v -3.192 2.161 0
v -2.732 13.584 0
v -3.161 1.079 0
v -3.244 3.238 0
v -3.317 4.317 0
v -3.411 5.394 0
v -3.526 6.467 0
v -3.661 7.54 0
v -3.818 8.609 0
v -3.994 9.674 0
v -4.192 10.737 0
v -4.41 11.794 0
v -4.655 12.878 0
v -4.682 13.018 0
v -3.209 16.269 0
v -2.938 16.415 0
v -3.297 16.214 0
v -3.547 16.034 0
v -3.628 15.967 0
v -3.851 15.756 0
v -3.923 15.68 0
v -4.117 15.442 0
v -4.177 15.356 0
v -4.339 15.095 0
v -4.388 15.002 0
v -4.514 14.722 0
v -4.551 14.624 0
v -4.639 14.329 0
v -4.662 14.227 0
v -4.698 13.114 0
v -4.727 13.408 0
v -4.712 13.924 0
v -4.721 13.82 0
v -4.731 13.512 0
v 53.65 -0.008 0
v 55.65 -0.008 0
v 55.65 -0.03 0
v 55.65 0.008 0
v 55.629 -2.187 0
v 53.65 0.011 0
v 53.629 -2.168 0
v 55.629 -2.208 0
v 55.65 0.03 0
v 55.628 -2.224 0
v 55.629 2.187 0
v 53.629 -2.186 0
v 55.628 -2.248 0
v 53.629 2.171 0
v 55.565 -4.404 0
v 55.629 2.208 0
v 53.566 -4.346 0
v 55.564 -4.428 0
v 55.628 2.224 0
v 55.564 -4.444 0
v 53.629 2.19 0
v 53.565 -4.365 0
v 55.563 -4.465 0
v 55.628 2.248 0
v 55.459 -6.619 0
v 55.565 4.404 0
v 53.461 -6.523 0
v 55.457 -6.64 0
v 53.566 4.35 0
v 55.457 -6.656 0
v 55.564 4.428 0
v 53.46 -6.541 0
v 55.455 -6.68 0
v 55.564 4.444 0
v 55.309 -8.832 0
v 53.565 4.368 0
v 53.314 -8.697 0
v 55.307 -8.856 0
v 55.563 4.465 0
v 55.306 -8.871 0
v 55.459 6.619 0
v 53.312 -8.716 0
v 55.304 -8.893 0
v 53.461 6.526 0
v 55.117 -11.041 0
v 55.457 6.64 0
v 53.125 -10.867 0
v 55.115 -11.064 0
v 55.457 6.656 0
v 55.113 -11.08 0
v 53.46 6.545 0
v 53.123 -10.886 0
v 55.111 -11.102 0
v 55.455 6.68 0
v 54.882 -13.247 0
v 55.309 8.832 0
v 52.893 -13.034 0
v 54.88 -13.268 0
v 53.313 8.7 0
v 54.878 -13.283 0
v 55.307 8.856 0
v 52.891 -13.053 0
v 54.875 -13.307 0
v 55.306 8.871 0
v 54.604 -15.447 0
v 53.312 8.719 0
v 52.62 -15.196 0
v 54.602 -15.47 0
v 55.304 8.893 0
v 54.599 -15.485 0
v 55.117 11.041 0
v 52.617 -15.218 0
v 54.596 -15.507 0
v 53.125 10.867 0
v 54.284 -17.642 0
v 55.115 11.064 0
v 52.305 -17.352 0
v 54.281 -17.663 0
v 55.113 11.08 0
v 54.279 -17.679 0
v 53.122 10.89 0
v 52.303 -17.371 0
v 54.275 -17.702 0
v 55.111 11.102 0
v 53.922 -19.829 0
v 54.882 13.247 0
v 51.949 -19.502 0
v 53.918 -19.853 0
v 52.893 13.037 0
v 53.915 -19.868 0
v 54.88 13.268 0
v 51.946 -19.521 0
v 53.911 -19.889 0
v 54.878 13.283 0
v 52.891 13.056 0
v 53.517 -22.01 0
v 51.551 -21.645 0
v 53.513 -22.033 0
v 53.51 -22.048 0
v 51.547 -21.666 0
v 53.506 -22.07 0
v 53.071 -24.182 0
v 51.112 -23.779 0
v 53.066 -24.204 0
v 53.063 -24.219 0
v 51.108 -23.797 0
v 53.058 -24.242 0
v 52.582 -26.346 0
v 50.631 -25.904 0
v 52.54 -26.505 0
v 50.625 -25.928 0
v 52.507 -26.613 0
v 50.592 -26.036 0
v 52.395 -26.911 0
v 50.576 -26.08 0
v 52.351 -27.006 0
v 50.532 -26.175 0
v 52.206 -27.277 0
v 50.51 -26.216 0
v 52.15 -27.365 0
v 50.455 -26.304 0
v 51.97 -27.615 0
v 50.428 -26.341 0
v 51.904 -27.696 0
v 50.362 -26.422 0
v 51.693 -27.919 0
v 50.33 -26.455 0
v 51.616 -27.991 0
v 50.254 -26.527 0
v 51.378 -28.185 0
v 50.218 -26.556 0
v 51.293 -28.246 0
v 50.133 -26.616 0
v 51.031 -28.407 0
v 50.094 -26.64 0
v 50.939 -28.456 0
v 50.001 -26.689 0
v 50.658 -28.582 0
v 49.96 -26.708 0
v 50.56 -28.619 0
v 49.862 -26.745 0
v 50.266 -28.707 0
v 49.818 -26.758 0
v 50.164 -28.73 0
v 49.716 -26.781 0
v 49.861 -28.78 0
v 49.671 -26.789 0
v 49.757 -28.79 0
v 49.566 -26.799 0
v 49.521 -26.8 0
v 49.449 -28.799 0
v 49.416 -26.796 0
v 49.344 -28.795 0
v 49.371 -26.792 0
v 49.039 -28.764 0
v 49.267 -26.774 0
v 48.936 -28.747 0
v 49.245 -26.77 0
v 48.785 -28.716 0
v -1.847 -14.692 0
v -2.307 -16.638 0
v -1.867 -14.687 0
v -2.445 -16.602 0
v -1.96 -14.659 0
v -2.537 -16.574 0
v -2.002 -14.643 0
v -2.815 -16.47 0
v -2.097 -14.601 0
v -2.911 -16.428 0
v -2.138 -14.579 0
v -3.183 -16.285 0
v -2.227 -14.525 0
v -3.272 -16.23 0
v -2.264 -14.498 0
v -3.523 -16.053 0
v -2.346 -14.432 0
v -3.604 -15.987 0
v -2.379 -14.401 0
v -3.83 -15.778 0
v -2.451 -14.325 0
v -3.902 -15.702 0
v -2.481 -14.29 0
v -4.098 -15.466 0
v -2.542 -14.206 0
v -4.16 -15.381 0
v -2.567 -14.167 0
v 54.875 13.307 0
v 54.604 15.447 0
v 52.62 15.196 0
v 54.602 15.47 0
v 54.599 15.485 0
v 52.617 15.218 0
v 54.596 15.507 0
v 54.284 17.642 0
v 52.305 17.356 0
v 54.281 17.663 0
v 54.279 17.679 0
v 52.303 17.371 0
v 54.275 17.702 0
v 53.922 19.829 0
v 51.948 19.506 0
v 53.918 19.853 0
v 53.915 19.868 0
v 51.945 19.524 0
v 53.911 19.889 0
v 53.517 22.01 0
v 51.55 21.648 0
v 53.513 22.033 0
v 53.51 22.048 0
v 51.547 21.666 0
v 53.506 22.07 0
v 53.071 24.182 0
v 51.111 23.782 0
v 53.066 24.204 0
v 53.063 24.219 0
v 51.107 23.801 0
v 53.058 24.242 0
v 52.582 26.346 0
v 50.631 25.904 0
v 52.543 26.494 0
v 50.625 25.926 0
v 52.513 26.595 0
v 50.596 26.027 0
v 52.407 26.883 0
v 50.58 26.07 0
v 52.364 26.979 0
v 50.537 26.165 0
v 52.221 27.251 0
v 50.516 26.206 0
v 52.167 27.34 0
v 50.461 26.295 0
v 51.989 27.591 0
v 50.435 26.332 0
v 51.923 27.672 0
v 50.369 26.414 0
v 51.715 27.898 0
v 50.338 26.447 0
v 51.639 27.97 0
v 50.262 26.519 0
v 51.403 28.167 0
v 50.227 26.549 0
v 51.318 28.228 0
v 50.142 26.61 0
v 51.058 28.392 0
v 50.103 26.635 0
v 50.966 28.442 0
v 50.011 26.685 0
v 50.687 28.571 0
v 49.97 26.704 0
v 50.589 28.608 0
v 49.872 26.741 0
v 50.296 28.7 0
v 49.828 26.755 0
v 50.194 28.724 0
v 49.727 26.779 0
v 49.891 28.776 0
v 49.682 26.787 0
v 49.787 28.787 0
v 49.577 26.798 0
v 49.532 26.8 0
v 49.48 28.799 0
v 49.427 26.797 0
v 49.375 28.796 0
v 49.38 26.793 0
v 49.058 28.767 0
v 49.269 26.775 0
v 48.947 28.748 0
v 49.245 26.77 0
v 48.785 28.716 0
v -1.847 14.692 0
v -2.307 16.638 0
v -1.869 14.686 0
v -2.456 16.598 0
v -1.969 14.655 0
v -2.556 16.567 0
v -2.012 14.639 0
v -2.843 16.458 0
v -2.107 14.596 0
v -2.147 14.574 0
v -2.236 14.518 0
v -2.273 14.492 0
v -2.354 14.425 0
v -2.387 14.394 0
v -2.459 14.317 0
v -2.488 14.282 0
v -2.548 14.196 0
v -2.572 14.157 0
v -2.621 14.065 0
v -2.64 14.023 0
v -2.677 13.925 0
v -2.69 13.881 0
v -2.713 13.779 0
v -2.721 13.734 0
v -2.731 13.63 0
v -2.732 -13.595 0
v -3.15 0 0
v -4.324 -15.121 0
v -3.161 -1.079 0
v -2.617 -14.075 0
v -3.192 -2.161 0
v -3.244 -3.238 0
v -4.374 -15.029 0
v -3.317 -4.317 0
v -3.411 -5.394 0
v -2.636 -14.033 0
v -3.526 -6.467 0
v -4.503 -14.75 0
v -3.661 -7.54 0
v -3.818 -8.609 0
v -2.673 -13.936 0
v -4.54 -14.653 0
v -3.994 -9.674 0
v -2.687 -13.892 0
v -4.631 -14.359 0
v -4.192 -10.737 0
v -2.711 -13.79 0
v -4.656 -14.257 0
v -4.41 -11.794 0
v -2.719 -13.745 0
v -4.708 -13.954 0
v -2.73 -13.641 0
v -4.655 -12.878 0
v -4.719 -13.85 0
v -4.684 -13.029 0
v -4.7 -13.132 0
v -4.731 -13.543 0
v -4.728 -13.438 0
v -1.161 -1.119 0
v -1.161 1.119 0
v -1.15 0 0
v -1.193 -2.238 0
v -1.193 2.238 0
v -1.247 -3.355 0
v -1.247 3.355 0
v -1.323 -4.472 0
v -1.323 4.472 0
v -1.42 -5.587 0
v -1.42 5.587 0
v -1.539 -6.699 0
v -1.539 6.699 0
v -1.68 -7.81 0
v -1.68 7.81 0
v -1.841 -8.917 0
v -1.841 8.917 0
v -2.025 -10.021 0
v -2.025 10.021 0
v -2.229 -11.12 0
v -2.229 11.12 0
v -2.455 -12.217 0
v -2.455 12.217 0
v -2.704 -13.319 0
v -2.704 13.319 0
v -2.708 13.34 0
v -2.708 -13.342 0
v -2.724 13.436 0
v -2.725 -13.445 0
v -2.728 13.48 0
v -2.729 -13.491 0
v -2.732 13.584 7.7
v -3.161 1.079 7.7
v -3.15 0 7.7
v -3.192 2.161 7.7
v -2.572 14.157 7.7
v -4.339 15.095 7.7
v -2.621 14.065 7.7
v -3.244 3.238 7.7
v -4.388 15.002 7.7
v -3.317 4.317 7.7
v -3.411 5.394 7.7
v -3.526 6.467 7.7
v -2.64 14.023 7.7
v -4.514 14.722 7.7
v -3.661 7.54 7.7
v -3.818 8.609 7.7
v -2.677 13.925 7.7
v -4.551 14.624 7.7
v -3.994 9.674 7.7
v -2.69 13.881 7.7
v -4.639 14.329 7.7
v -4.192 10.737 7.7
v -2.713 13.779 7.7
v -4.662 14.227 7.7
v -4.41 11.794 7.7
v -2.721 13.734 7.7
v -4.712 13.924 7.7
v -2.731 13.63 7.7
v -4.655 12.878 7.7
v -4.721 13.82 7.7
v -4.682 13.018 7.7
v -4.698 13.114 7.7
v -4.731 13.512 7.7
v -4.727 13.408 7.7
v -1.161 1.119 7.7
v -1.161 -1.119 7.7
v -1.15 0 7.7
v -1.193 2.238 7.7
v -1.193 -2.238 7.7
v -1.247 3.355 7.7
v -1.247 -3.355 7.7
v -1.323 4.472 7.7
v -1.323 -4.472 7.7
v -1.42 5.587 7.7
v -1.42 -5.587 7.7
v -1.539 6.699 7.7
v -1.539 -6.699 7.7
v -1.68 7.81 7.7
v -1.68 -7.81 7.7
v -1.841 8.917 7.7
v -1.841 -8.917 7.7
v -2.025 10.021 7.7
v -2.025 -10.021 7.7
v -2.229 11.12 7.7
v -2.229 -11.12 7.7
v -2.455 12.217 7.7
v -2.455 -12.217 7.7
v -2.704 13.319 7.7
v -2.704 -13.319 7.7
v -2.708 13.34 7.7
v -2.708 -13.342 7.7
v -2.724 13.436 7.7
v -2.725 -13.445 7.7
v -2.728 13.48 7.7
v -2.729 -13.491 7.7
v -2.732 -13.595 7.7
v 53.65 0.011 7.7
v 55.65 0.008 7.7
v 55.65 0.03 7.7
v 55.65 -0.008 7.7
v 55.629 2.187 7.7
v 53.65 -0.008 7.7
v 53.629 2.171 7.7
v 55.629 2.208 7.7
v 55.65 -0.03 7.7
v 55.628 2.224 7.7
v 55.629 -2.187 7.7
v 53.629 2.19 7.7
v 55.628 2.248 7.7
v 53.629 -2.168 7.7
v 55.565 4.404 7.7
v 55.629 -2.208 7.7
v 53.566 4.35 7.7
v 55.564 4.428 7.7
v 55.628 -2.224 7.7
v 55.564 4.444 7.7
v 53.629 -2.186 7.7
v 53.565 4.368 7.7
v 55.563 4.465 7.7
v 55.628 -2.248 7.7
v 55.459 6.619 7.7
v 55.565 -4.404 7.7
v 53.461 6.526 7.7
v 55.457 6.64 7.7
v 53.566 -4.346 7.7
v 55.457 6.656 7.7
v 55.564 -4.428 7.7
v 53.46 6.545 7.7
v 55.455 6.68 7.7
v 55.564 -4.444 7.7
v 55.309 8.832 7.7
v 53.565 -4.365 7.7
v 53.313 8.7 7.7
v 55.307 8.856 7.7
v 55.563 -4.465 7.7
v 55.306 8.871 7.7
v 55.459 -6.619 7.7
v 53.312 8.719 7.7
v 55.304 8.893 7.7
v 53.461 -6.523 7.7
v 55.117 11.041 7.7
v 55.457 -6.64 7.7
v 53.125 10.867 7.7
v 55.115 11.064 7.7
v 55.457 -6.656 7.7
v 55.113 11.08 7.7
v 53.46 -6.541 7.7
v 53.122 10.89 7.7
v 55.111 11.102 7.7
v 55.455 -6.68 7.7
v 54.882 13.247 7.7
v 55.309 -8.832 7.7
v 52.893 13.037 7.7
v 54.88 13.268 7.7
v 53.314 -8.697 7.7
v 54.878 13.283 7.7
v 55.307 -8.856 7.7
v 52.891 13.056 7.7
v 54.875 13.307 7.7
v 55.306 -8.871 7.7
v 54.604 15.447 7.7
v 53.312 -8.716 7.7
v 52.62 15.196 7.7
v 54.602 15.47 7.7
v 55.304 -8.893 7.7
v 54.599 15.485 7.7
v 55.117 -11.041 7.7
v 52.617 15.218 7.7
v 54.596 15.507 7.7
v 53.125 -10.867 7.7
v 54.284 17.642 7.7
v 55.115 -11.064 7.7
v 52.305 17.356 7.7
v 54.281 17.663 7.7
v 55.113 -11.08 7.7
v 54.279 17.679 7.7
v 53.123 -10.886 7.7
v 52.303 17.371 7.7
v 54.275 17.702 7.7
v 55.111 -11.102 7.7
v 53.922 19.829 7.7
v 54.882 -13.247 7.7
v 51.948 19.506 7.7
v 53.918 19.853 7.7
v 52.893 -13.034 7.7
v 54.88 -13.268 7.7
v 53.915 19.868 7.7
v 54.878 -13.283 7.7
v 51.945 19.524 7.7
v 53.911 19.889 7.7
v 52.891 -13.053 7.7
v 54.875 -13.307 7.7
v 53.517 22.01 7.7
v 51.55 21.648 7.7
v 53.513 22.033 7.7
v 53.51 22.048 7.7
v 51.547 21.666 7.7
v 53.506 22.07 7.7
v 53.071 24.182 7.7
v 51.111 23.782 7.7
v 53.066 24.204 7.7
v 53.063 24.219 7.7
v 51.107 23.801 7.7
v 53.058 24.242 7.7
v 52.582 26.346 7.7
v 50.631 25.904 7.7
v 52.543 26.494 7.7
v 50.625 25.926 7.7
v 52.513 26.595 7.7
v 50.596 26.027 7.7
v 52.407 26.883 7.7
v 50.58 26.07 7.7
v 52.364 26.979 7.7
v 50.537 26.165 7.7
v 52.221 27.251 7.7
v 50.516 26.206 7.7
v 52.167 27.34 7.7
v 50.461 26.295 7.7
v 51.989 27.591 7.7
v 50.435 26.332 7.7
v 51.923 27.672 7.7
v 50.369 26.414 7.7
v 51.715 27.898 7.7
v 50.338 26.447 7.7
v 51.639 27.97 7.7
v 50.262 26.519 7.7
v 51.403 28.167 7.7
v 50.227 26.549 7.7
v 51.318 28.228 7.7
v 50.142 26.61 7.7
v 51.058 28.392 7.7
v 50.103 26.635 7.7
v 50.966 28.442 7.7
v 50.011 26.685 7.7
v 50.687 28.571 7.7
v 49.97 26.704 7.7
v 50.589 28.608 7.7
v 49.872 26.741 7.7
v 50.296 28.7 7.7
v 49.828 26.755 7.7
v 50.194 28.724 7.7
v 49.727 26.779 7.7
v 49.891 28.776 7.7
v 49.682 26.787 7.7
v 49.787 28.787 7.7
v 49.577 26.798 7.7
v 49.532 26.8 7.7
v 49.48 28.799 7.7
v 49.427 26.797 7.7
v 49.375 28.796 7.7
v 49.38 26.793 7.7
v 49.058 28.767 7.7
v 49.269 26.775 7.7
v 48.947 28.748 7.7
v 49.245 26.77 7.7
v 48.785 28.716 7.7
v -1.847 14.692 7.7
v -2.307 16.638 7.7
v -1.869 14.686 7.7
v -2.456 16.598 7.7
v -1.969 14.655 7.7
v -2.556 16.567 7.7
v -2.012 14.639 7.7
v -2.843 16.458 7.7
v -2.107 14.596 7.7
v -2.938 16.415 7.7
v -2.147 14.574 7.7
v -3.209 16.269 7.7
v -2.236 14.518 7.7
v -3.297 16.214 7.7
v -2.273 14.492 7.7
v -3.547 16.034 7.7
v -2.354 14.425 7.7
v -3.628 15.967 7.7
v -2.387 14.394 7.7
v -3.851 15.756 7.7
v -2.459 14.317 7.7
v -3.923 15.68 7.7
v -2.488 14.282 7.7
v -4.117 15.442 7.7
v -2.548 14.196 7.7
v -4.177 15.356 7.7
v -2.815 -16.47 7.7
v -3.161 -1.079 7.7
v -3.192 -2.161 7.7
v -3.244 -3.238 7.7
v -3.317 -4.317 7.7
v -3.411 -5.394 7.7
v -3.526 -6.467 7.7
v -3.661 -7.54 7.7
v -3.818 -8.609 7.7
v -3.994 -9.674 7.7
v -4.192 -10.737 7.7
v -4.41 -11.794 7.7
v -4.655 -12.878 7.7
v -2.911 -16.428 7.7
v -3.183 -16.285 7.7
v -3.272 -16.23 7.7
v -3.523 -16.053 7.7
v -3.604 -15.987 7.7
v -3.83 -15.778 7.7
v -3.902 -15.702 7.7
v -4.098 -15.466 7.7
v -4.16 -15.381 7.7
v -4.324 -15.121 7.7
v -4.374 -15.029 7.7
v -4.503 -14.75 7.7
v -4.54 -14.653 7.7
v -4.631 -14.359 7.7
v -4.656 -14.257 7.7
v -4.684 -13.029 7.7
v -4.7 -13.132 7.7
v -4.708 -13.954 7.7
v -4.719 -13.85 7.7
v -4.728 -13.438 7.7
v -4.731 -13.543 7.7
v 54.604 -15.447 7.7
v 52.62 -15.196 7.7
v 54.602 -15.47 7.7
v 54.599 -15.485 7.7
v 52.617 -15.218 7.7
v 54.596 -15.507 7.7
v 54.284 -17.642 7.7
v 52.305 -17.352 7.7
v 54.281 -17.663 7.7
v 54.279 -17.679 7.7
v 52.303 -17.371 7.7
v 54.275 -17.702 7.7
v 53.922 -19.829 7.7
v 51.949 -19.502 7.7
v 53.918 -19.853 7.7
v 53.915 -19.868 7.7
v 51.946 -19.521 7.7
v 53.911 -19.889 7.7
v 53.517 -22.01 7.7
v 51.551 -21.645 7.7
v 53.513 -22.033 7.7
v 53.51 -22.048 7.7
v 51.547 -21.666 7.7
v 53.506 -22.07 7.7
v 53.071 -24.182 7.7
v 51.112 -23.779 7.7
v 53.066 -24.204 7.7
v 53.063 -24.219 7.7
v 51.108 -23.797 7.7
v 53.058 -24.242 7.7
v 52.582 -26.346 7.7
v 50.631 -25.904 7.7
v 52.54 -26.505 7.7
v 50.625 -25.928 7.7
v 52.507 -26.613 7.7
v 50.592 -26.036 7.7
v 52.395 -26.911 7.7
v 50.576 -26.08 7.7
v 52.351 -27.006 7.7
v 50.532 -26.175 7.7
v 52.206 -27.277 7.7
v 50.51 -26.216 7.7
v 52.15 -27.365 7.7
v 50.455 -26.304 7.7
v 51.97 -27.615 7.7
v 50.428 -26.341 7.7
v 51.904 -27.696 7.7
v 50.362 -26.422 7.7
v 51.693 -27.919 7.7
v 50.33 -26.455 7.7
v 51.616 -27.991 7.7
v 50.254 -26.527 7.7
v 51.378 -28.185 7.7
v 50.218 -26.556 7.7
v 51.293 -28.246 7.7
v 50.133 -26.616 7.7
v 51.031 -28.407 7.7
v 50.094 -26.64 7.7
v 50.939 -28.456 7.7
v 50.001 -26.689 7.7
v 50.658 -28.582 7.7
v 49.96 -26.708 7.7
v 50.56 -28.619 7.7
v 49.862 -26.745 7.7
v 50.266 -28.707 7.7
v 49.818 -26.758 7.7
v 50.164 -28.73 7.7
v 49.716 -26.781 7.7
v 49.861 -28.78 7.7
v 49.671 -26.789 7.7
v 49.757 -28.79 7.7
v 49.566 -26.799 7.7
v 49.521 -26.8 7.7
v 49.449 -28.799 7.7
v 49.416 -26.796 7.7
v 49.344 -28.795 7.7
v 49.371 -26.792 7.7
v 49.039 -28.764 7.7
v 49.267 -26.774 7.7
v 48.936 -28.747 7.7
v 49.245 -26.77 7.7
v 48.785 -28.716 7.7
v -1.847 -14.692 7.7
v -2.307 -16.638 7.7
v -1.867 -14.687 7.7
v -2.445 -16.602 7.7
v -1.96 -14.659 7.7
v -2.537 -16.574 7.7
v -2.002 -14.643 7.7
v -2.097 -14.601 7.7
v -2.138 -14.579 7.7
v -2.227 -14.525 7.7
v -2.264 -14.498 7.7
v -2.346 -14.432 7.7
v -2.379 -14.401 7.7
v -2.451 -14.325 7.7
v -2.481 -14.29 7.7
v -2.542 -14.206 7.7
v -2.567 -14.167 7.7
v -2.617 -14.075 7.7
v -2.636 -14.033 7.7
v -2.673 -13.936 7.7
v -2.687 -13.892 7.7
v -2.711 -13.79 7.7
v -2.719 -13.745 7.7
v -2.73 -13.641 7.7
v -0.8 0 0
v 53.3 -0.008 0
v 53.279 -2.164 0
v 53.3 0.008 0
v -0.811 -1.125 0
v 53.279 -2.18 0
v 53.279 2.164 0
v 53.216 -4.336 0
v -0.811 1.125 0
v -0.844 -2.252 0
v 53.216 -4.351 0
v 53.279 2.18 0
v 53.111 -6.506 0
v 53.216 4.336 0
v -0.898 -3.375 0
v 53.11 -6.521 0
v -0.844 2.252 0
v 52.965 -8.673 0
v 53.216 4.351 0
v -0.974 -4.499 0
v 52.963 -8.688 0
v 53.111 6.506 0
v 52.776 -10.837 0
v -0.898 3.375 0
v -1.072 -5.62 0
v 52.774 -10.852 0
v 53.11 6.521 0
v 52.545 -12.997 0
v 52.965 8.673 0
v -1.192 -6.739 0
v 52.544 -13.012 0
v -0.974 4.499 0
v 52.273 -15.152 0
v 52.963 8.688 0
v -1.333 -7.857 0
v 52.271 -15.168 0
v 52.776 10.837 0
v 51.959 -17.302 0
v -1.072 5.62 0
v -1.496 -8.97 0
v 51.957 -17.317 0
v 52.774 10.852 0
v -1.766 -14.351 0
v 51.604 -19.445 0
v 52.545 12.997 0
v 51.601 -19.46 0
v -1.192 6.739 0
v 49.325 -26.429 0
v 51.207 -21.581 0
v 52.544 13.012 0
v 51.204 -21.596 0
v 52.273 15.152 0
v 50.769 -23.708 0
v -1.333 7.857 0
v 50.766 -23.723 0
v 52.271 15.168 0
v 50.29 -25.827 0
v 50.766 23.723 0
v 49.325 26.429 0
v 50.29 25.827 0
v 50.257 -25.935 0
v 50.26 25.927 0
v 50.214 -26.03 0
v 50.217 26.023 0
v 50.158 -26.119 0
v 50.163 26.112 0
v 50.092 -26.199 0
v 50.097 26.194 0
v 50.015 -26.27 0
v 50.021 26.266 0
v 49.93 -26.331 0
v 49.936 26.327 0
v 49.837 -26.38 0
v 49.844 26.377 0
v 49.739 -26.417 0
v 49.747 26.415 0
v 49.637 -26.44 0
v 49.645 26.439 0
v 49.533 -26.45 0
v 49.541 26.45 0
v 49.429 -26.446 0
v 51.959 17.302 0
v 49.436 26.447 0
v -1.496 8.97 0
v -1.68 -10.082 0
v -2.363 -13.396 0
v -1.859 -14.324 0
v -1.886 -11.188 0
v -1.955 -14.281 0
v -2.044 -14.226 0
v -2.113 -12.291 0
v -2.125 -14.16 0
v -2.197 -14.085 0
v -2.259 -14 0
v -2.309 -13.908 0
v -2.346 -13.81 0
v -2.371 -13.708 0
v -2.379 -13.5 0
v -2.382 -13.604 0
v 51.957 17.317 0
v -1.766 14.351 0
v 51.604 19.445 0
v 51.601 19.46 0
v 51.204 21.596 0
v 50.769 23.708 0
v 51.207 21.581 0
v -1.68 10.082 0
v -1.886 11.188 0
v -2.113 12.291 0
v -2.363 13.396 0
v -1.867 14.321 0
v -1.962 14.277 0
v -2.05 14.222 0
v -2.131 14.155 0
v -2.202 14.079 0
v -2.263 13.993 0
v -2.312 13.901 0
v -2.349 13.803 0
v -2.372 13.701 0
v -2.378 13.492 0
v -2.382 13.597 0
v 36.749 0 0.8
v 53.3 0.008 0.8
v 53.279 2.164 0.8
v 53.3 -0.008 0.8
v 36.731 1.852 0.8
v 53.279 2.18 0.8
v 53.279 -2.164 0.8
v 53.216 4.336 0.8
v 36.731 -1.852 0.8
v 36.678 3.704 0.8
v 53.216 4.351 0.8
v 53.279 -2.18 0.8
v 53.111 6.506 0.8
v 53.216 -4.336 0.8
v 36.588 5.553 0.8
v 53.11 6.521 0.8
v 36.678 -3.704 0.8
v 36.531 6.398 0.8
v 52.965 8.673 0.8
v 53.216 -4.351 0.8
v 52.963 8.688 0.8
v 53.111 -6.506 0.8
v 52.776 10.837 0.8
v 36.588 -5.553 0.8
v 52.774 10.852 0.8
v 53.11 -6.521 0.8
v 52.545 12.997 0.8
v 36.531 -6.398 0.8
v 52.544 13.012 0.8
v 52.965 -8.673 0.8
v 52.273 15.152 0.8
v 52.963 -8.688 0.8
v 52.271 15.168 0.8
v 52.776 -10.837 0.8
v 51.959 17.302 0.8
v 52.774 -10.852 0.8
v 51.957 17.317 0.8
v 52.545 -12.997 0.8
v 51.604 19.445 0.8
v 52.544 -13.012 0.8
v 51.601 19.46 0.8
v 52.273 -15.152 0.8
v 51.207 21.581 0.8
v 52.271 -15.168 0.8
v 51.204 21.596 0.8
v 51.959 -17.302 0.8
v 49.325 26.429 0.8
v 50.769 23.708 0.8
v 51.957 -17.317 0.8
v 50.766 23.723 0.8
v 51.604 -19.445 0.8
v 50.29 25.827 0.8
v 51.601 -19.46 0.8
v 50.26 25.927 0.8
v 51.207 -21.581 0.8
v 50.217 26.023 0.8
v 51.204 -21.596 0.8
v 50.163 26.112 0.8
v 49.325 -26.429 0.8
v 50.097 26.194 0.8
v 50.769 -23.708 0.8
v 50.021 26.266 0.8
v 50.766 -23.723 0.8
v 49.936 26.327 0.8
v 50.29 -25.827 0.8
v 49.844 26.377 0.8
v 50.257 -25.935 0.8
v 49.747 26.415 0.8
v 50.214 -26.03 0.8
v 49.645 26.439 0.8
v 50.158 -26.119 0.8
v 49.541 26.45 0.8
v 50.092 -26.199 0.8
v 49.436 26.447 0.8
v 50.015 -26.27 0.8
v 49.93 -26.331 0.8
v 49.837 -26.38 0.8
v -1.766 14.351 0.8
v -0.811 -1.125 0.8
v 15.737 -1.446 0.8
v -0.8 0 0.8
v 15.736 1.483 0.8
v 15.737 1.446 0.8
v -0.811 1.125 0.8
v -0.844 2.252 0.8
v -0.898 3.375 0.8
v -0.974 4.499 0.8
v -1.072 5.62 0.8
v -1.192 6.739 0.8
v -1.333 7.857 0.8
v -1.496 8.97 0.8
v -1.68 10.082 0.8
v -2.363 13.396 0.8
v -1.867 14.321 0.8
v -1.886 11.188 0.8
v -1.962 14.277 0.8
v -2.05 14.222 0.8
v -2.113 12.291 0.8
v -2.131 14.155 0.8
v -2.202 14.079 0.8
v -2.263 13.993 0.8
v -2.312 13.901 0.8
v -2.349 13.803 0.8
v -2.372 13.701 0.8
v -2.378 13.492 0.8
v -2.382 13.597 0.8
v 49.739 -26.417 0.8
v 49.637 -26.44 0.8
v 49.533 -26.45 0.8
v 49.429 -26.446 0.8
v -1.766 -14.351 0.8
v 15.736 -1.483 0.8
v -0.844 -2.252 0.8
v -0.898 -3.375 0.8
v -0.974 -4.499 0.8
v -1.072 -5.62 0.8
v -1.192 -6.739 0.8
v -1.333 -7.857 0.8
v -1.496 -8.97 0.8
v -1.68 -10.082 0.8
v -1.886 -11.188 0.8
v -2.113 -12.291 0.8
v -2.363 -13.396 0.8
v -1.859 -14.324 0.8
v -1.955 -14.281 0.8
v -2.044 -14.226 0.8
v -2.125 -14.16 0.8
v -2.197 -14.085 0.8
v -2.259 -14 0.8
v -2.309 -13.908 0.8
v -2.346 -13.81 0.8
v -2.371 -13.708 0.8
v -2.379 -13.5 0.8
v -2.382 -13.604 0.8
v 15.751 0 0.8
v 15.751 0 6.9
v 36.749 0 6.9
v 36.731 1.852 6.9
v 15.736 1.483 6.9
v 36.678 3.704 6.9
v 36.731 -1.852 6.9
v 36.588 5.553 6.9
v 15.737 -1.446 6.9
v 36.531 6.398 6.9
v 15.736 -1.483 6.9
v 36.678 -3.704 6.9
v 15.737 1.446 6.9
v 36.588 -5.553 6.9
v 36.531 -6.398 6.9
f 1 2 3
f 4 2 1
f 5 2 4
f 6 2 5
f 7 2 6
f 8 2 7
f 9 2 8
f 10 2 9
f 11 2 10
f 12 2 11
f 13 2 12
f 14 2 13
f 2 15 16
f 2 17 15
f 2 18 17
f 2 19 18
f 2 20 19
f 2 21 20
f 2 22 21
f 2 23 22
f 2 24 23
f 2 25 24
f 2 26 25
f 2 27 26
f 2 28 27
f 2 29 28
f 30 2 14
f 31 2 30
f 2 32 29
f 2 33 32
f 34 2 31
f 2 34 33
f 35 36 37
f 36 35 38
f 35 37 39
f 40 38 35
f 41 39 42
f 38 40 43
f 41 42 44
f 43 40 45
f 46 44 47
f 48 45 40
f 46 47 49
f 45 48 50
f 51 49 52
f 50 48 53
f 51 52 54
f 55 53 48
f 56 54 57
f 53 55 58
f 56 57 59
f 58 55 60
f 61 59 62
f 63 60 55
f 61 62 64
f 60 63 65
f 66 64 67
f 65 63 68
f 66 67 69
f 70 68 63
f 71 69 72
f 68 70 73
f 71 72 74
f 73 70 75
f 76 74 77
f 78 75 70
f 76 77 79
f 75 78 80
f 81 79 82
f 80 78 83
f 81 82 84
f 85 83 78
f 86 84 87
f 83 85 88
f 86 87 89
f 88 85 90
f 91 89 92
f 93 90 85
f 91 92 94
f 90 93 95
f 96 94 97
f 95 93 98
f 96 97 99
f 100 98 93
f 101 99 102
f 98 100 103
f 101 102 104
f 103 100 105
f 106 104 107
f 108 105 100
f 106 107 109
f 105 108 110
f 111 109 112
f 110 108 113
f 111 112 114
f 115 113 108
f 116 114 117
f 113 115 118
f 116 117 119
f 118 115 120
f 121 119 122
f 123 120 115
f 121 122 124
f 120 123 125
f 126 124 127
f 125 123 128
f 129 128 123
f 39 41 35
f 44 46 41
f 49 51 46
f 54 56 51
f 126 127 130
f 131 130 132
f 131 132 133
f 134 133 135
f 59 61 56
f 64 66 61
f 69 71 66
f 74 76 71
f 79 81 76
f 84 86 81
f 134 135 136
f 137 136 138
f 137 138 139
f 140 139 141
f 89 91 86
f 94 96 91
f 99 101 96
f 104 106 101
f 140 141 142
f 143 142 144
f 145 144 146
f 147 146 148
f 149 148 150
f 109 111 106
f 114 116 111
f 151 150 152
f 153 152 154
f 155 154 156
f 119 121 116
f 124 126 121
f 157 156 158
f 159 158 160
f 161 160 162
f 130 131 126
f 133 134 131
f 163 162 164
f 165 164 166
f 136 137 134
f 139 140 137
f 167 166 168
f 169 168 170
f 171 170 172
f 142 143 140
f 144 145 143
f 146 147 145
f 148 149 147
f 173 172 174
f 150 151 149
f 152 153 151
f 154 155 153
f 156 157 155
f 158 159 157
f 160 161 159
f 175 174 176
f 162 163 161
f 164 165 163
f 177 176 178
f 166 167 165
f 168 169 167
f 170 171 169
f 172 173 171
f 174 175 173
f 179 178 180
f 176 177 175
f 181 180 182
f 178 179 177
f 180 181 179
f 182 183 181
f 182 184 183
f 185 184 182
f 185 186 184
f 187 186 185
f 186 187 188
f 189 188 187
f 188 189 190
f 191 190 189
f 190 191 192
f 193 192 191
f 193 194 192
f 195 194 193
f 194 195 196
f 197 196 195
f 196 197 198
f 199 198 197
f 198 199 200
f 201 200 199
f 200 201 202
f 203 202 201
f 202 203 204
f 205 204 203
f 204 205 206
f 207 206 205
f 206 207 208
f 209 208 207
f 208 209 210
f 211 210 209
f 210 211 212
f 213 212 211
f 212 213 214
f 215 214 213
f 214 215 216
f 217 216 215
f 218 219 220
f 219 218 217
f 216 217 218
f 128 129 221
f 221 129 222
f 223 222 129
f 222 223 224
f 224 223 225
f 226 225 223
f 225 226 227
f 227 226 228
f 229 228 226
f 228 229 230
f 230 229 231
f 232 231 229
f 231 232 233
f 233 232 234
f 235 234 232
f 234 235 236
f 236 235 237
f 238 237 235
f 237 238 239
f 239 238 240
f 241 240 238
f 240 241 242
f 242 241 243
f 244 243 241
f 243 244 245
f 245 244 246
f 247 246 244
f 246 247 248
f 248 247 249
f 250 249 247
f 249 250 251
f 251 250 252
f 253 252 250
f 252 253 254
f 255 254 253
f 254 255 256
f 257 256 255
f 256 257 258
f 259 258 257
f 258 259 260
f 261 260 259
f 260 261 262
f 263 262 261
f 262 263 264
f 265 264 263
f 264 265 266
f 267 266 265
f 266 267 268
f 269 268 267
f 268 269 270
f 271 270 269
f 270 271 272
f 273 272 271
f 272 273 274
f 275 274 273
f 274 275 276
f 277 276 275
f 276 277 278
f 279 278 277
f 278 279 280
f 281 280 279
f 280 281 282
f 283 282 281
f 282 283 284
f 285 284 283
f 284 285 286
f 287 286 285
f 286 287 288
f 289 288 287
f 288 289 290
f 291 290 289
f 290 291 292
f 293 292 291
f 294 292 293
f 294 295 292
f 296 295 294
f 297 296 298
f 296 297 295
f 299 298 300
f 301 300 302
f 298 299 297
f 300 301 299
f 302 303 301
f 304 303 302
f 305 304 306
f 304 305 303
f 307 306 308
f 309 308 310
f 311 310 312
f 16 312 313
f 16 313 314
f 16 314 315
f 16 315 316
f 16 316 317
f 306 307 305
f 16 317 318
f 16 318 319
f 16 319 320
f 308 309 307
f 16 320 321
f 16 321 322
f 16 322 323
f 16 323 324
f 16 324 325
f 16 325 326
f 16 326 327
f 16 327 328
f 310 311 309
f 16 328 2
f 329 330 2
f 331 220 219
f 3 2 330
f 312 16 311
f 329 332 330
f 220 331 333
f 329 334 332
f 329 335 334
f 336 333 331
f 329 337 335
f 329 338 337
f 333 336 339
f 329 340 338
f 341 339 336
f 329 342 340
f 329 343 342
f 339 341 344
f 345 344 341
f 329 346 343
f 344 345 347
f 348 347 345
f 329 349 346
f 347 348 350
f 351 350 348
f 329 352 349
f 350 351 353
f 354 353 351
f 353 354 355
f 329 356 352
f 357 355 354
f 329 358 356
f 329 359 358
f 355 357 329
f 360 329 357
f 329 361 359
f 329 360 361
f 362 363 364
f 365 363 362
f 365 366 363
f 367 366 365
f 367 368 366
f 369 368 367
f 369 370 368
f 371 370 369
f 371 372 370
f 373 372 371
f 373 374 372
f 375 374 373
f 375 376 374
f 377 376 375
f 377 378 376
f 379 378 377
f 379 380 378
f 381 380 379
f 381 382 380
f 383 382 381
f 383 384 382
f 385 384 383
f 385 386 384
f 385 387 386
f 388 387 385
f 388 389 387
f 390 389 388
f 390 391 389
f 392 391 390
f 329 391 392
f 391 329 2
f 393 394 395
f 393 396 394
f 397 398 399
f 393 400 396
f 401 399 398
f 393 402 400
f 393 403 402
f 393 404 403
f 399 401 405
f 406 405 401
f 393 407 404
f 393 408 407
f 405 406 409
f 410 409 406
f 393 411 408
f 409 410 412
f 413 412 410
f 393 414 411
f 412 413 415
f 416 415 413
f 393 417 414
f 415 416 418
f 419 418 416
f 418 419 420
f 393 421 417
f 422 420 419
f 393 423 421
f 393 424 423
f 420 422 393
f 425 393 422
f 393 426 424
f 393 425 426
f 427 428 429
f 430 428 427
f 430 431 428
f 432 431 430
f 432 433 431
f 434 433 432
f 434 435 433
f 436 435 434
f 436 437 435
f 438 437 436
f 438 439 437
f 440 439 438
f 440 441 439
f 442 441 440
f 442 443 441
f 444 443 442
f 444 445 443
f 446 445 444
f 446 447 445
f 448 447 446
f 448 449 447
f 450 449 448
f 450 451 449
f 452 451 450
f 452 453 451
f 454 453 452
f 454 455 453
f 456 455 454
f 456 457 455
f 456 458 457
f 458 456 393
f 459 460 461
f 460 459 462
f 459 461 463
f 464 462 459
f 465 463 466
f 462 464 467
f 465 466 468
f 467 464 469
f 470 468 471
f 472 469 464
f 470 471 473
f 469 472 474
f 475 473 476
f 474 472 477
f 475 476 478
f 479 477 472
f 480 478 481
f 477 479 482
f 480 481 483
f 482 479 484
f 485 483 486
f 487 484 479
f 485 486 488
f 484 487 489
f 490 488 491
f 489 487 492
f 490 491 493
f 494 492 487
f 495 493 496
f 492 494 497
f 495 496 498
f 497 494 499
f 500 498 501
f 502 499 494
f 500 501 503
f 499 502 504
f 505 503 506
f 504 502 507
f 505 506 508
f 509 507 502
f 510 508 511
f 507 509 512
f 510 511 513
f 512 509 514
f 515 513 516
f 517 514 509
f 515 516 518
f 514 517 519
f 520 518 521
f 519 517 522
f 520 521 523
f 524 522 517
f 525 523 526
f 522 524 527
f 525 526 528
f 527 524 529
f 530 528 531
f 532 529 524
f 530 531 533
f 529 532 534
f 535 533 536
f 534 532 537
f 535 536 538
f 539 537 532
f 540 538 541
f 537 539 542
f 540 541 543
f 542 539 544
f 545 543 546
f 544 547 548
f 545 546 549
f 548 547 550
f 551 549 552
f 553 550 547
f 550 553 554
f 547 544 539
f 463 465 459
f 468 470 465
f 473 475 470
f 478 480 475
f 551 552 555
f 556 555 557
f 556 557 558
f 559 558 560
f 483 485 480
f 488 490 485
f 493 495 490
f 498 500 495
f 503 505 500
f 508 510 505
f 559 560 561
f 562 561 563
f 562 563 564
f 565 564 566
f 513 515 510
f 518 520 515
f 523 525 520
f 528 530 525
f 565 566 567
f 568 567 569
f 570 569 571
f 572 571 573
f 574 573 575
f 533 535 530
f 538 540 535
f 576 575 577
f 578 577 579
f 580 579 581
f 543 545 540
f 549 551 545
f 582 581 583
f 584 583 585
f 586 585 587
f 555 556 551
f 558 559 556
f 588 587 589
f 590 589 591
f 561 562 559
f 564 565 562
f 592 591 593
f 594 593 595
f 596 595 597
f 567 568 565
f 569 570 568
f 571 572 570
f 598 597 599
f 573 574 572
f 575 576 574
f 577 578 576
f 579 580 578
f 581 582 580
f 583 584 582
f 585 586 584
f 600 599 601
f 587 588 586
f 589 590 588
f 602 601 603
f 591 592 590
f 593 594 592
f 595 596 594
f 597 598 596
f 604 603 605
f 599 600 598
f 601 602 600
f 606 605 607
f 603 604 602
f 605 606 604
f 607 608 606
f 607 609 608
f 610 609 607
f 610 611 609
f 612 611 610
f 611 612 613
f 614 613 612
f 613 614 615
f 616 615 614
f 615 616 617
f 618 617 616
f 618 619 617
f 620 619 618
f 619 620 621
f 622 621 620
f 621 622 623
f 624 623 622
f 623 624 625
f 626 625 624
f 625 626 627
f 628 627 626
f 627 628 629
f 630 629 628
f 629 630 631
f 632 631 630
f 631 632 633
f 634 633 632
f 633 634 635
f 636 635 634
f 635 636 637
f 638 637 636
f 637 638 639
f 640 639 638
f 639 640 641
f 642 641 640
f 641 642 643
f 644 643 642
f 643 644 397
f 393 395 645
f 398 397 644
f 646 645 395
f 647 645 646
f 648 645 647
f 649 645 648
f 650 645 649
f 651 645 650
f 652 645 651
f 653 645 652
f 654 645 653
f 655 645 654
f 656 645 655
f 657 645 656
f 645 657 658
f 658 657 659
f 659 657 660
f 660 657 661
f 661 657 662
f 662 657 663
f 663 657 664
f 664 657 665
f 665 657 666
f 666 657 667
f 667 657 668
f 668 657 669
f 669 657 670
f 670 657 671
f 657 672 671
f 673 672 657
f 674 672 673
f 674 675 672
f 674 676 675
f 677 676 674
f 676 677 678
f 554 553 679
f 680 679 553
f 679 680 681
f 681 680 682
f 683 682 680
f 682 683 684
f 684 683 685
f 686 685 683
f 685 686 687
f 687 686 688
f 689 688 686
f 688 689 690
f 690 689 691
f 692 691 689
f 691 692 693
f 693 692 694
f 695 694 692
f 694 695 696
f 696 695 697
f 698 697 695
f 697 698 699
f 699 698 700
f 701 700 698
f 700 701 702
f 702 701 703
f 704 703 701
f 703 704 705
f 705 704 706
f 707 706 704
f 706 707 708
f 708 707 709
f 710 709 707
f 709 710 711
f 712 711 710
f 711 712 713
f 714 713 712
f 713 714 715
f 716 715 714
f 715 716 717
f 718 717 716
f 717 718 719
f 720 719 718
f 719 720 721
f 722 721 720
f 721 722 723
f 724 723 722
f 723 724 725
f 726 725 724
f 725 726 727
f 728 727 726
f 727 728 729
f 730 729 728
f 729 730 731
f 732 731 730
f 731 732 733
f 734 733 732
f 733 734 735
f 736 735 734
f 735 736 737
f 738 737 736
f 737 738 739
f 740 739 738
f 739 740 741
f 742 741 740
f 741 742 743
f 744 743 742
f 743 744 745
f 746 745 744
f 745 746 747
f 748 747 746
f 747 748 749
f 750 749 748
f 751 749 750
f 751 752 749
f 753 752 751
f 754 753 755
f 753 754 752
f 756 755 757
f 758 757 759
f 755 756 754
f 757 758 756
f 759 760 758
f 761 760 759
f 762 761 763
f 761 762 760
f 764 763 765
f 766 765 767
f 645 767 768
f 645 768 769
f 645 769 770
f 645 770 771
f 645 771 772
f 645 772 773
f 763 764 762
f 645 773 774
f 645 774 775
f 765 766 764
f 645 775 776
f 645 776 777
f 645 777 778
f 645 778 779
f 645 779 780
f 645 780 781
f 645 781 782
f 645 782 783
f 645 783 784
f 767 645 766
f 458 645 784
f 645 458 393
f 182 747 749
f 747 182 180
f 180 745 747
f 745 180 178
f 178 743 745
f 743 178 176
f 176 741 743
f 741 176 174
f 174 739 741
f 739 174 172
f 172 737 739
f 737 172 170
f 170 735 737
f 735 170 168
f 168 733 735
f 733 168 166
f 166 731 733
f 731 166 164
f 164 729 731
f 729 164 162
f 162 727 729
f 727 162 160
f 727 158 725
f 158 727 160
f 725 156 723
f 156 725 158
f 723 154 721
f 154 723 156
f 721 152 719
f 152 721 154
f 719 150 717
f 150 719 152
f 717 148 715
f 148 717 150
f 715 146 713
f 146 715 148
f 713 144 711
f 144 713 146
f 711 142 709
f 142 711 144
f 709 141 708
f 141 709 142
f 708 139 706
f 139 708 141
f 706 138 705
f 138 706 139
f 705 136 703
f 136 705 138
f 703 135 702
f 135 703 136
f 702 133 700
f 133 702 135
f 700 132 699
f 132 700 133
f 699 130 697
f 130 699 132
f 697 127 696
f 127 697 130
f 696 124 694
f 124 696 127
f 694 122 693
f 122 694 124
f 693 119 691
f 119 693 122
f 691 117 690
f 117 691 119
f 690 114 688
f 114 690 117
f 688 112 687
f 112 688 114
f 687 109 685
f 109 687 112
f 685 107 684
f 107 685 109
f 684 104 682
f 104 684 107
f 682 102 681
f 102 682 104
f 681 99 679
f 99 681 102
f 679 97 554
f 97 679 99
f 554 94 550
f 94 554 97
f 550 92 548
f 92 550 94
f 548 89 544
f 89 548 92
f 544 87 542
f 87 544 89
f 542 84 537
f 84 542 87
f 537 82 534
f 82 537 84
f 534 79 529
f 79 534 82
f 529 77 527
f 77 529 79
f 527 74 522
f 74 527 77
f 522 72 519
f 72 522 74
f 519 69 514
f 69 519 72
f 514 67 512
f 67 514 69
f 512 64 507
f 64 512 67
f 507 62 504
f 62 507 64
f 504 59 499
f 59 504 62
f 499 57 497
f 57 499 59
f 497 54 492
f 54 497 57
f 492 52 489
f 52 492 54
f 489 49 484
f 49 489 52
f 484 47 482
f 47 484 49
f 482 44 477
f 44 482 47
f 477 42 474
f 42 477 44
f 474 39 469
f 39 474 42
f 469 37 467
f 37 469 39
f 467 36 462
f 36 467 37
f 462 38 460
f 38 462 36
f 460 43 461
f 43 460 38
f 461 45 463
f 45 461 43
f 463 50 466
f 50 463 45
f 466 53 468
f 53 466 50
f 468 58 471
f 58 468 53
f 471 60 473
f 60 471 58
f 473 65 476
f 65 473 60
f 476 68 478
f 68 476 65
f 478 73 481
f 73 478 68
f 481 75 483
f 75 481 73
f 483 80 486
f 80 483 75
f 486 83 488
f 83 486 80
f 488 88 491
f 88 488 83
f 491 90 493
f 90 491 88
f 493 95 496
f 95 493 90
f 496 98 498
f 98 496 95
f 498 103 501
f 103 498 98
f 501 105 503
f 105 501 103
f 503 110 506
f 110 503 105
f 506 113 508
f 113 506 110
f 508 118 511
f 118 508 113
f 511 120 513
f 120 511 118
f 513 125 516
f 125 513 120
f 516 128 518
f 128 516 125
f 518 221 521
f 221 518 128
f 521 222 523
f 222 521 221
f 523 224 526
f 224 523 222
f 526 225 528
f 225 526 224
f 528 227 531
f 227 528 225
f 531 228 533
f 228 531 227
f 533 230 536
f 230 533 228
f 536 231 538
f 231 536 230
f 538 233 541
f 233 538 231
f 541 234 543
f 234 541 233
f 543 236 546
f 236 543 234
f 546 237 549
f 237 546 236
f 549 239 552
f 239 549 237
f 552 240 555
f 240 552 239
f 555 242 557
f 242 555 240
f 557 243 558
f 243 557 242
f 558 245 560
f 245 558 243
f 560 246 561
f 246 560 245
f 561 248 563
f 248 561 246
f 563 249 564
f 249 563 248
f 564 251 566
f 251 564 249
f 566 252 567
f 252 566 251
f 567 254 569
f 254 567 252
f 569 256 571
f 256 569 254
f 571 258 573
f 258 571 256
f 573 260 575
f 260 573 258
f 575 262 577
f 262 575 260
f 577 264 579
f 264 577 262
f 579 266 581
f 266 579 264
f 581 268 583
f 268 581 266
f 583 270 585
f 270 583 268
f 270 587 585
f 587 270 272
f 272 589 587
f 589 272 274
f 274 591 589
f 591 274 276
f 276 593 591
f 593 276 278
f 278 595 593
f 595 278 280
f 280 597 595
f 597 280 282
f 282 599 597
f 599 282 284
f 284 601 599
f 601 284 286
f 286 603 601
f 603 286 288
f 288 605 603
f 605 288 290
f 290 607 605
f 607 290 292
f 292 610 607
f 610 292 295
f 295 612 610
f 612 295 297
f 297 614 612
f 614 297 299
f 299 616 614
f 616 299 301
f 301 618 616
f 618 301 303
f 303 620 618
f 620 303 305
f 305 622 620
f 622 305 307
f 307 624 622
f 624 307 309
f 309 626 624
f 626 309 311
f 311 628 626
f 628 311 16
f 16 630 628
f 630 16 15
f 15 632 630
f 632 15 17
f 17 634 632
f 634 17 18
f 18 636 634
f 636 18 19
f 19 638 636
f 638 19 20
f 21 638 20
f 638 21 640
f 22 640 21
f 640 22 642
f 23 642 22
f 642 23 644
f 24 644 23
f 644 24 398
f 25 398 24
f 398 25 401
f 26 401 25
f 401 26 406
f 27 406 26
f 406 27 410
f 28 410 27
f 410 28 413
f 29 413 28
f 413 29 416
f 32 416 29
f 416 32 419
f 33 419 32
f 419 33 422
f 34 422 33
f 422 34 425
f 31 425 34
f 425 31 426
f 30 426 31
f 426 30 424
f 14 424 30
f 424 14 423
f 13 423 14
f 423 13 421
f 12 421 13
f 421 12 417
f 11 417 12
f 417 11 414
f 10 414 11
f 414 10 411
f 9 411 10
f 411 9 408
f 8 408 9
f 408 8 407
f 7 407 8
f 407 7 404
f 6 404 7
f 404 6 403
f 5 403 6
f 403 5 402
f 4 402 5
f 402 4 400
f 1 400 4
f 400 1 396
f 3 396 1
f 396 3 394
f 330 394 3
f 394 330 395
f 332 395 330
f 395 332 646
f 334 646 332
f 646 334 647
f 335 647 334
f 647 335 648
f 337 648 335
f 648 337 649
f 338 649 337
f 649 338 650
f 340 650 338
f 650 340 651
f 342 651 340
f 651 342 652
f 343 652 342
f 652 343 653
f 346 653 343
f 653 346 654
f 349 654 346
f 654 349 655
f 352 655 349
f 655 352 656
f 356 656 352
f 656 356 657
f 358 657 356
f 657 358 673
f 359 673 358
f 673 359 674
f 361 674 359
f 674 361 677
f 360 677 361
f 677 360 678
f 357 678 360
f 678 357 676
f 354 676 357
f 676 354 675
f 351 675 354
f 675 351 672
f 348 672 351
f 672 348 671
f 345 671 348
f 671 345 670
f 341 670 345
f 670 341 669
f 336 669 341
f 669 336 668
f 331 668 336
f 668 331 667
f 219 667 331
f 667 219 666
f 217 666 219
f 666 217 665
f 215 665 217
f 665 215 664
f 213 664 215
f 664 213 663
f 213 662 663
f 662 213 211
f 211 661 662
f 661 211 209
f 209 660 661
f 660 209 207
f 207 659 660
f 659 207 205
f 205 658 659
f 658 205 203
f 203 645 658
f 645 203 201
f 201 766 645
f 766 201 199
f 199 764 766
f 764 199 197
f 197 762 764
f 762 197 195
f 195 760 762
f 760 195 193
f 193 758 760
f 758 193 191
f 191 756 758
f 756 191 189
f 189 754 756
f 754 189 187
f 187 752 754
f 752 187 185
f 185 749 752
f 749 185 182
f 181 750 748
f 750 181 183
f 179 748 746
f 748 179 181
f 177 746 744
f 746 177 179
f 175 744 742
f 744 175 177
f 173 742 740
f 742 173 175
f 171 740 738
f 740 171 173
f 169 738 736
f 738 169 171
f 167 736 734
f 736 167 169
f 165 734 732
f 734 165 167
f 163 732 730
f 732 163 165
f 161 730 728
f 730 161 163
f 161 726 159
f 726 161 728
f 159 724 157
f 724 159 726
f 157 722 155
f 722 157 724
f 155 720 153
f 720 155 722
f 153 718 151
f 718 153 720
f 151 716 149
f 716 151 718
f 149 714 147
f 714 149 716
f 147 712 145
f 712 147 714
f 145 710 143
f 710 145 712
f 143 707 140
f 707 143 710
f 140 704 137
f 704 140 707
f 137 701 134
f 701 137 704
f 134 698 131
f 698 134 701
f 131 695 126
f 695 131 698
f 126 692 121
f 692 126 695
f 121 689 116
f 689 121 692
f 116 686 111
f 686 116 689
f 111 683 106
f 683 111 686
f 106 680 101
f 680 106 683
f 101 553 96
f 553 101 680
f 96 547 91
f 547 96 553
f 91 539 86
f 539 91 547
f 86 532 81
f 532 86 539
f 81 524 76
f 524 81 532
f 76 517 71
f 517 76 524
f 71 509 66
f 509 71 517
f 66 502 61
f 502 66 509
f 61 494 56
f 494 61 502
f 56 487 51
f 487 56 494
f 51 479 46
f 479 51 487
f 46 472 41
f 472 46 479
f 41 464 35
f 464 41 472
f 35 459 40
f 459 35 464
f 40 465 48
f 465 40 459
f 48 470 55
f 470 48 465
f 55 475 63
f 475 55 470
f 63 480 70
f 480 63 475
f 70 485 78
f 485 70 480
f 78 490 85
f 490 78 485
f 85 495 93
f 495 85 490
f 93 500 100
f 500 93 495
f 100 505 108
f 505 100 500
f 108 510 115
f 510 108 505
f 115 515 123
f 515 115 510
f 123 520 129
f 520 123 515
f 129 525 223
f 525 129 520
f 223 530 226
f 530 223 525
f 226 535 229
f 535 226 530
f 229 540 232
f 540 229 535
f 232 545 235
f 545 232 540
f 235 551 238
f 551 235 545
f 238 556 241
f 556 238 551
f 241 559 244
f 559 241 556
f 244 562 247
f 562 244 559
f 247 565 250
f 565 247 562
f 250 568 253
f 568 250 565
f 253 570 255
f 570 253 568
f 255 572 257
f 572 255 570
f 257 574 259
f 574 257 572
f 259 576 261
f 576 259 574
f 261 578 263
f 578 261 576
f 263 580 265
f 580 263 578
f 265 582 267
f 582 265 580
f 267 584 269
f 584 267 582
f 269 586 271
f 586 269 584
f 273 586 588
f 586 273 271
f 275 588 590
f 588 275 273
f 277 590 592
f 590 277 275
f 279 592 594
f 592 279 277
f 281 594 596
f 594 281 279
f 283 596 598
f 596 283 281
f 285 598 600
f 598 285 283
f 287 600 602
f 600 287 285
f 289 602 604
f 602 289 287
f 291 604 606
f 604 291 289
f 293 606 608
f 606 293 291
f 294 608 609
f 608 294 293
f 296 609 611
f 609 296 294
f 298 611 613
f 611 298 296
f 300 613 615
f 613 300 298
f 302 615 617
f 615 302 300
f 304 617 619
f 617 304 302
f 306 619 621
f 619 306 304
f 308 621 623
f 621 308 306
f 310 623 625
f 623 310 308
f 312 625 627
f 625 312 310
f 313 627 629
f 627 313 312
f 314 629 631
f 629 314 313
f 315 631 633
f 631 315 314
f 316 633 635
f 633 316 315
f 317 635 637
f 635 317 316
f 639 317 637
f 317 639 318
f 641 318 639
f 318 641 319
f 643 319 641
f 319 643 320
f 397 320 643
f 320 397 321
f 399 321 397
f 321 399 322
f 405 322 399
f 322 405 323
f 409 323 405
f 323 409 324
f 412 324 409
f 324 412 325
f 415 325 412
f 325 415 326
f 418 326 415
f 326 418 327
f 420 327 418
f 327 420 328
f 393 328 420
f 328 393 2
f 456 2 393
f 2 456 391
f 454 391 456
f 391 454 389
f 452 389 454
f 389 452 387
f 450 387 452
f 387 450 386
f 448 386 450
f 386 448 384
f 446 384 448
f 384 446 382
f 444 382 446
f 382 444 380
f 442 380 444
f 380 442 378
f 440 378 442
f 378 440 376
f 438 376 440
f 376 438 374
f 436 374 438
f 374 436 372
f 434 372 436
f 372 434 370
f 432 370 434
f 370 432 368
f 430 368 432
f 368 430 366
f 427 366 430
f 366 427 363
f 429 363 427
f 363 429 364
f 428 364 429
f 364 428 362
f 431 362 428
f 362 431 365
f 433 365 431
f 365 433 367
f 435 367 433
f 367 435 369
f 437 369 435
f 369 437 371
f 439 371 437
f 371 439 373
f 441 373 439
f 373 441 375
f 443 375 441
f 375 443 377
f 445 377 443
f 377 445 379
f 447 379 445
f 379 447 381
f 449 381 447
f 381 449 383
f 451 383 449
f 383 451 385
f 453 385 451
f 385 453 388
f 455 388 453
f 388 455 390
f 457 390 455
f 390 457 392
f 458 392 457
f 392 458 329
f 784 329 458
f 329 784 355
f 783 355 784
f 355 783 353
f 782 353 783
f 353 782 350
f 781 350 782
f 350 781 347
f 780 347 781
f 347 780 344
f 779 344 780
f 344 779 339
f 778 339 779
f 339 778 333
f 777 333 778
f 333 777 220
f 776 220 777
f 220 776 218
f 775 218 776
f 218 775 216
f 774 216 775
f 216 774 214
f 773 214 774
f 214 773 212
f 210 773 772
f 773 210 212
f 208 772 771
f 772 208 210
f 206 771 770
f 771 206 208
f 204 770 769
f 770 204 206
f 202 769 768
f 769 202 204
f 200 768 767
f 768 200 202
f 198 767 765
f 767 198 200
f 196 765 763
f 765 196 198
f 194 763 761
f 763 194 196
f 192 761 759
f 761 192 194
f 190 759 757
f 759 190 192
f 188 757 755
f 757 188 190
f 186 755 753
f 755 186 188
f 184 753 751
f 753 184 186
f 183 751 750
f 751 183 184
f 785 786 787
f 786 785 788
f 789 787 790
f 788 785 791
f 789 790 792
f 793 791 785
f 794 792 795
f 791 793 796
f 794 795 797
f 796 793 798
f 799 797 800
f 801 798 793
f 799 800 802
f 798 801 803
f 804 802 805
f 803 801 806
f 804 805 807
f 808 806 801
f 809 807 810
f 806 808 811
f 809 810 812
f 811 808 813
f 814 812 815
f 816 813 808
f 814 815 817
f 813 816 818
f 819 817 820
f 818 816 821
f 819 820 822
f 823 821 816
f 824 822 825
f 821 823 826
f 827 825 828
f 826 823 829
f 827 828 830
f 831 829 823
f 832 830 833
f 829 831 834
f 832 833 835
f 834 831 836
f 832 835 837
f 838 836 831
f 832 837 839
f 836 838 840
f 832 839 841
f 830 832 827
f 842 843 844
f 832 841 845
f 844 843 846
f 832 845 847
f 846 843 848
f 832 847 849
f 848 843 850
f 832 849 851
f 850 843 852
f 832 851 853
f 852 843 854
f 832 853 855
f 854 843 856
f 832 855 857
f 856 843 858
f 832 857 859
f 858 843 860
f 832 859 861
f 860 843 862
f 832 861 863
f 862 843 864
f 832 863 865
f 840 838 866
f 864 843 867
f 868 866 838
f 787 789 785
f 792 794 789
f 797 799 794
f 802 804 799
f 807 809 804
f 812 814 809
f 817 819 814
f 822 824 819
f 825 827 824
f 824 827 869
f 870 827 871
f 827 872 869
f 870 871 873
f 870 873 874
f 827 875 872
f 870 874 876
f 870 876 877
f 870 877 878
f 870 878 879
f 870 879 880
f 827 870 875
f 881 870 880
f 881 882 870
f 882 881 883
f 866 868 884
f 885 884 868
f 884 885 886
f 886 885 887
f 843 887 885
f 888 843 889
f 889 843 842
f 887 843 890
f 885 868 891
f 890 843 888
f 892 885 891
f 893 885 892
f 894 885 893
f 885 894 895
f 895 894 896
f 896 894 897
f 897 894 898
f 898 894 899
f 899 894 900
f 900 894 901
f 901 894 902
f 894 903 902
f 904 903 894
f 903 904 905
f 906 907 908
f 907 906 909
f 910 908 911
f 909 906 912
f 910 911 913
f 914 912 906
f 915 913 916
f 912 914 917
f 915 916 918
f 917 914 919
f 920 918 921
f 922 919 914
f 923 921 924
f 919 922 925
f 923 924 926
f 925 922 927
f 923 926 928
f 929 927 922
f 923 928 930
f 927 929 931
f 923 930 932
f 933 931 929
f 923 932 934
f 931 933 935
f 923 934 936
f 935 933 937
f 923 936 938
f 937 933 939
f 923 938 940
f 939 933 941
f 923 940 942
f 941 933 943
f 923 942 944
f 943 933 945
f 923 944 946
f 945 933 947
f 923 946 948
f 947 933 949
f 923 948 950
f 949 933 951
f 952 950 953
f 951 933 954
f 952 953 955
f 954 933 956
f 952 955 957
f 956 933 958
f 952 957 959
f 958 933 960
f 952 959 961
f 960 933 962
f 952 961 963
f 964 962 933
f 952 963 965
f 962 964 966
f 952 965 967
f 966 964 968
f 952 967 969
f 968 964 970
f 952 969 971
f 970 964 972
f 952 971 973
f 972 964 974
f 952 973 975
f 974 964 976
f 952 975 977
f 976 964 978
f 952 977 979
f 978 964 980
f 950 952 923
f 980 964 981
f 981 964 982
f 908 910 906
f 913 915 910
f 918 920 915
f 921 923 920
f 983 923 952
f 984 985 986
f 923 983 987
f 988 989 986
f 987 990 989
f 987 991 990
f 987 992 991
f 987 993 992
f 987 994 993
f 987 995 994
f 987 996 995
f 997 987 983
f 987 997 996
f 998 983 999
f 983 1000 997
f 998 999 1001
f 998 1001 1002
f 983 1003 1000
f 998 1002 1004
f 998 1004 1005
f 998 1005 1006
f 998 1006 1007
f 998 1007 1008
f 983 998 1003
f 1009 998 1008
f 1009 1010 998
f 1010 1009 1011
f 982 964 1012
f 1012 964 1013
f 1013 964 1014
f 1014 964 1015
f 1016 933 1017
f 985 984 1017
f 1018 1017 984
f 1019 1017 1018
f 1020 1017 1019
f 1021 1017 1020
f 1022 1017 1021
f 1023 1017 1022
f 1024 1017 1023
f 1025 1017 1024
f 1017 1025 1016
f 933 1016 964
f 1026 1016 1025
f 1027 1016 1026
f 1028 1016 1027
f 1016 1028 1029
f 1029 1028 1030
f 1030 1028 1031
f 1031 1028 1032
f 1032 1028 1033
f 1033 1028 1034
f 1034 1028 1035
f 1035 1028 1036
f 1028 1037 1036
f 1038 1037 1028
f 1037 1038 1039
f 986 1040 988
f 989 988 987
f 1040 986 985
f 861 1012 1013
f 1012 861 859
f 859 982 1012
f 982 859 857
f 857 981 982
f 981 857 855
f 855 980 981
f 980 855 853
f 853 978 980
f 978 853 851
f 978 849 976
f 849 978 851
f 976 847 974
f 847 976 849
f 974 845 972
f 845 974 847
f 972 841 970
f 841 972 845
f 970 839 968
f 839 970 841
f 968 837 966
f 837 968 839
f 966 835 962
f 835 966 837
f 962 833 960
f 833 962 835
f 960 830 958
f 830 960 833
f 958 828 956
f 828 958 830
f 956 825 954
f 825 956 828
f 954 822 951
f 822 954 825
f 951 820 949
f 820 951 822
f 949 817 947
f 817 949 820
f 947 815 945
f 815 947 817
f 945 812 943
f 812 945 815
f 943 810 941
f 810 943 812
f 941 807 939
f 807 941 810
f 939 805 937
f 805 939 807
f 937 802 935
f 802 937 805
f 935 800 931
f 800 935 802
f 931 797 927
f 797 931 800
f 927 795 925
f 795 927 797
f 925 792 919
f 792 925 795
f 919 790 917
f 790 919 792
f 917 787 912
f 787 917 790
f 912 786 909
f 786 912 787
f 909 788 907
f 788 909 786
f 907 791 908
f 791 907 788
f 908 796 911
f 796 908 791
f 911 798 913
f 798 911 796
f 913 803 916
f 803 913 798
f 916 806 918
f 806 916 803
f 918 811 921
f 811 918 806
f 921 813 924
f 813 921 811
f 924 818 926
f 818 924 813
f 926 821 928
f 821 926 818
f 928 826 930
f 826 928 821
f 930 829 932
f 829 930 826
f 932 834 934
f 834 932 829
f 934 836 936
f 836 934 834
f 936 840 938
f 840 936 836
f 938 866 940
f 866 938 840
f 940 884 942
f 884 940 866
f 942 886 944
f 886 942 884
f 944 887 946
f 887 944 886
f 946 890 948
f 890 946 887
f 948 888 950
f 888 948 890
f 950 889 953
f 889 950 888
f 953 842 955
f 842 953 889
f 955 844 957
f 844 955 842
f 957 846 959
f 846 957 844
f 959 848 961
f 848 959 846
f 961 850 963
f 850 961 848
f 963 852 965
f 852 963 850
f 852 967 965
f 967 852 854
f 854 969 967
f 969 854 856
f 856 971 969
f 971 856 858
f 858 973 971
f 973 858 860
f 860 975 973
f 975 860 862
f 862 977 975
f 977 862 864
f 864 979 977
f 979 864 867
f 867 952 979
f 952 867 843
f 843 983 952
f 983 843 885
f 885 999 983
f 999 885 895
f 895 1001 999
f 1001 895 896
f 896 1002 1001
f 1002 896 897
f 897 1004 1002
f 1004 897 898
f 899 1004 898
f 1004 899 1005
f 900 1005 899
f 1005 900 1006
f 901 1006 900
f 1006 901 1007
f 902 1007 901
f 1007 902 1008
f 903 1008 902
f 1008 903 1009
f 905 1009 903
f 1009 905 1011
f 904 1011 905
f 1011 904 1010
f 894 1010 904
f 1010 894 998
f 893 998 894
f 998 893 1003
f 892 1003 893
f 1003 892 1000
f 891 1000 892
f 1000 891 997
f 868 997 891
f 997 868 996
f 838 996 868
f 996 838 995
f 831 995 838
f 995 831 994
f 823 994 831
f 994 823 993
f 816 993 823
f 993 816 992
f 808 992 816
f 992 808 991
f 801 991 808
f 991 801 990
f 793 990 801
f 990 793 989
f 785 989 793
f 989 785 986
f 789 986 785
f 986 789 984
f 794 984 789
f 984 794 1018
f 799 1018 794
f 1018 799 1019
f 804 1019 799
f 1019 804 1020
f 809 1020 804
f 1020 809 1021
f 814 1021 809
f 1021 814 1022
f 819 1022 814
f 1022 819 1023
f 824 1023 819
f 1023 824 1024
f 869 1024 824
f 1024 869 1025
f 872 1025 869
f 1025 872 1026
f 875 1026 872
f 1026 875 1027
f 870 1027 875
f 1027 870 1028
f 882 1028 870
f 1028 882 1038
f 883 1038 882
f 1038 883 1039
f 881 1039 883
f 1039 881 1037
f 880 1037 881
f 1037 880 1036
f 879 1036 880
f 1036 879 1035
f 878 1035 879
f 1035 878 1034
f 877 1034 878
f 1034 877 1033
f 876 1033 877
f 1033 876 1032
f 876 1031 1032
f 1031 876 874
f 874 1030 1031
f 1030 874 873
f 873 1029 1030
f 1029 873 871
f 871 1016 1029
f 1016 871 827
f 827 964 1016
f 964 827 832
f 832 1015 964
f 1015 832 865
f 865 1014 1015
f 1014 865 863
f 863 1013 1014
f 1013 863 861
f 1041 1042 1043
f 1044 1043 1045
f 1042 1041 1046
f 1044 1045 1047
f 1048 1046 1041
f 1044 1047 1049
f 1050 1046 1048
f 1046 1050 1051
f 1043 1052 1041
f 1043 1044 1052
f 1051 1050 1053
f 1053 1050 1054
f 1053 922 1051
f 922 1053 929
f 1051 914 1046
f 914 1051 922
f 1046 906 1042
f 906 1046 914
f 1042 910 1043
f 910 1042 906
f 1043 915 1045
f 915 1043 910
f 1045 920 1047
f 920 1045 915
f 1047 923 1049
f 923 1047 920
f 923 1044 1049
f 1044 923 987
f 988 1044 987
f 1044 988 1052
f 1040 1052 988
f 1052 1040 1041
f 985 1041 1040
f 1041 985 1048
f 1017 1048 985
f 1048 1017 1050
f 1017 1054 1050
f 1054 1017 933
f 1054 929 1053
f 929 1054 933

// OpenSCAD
// Gen-CX — fit coupon (bay part): O20/O5 THROUGH pockets at carrier thickness (test on a steel offcut), 608 seat,
// D-flat bore, gap shim, and one bobbin-bay slice (bobbin footprint + bay_clear) to test former fit.
include <parameters.scad>;
$fn = 48;
// D-flat keyed bore: flat faces +X (angle 0 = magnet pocket 0 = index notch)
module dflat_bore(h) {
    intersection() {
        cylinder(d=shaft_bore, h=h);
        translate([-shaft_bore, -shaft_bore, 0]) cube([shaft_bore + dflat_x, 2*shaft_bore, h]);
    }
}
module sector_2d(r_in, r_out, ang) {
    polygon([
        for (a = [-ang/2 : ang/24 : ang/2]) [r_in*cos(a), r_in*sin(a)],
        for (a = [ang/2 : -ang/24 : -ang/2]) [r_out*cos(a), r_out*sin(a)]
    ]);
}
module footprint_2d() { offset(r=wall) sector_2d(coil_id_r, coil_od_r, span_deg); }
module hub_2d()       { offset(delta=-coil_core_inset) sector_2d(coil_id_r, coil_od_r, span_deg); }

// bay slice at FULL stator thickness with one bobbin BASE printed IN PLACE inside it (bay_clear gap): this is the
// print-in-place test for the one-plate stator. After printing, the base must pop out with finger pressure; if it is fused,
// print coil_former.stl separately (print-packs/parts/) instead of using the in-place bases.
translate([-coil_id_r, 0, 0]) {
    difference() {
        linear_extrude(stator_thick) offset(r=bay_clear + 2) footprint_2d();
        translate([0, 0, -0.1]) linear_extrude(stator_thick + 0.2) offset(r=bay_clear) footprint_2d();
    }
    union() {
        linear_extrude(flange_t) footprint_2d();
        translate([0, 0, flange_t - 0.01]) linear_extrude(former_web + 0.01) hub_2d();
    }
}
